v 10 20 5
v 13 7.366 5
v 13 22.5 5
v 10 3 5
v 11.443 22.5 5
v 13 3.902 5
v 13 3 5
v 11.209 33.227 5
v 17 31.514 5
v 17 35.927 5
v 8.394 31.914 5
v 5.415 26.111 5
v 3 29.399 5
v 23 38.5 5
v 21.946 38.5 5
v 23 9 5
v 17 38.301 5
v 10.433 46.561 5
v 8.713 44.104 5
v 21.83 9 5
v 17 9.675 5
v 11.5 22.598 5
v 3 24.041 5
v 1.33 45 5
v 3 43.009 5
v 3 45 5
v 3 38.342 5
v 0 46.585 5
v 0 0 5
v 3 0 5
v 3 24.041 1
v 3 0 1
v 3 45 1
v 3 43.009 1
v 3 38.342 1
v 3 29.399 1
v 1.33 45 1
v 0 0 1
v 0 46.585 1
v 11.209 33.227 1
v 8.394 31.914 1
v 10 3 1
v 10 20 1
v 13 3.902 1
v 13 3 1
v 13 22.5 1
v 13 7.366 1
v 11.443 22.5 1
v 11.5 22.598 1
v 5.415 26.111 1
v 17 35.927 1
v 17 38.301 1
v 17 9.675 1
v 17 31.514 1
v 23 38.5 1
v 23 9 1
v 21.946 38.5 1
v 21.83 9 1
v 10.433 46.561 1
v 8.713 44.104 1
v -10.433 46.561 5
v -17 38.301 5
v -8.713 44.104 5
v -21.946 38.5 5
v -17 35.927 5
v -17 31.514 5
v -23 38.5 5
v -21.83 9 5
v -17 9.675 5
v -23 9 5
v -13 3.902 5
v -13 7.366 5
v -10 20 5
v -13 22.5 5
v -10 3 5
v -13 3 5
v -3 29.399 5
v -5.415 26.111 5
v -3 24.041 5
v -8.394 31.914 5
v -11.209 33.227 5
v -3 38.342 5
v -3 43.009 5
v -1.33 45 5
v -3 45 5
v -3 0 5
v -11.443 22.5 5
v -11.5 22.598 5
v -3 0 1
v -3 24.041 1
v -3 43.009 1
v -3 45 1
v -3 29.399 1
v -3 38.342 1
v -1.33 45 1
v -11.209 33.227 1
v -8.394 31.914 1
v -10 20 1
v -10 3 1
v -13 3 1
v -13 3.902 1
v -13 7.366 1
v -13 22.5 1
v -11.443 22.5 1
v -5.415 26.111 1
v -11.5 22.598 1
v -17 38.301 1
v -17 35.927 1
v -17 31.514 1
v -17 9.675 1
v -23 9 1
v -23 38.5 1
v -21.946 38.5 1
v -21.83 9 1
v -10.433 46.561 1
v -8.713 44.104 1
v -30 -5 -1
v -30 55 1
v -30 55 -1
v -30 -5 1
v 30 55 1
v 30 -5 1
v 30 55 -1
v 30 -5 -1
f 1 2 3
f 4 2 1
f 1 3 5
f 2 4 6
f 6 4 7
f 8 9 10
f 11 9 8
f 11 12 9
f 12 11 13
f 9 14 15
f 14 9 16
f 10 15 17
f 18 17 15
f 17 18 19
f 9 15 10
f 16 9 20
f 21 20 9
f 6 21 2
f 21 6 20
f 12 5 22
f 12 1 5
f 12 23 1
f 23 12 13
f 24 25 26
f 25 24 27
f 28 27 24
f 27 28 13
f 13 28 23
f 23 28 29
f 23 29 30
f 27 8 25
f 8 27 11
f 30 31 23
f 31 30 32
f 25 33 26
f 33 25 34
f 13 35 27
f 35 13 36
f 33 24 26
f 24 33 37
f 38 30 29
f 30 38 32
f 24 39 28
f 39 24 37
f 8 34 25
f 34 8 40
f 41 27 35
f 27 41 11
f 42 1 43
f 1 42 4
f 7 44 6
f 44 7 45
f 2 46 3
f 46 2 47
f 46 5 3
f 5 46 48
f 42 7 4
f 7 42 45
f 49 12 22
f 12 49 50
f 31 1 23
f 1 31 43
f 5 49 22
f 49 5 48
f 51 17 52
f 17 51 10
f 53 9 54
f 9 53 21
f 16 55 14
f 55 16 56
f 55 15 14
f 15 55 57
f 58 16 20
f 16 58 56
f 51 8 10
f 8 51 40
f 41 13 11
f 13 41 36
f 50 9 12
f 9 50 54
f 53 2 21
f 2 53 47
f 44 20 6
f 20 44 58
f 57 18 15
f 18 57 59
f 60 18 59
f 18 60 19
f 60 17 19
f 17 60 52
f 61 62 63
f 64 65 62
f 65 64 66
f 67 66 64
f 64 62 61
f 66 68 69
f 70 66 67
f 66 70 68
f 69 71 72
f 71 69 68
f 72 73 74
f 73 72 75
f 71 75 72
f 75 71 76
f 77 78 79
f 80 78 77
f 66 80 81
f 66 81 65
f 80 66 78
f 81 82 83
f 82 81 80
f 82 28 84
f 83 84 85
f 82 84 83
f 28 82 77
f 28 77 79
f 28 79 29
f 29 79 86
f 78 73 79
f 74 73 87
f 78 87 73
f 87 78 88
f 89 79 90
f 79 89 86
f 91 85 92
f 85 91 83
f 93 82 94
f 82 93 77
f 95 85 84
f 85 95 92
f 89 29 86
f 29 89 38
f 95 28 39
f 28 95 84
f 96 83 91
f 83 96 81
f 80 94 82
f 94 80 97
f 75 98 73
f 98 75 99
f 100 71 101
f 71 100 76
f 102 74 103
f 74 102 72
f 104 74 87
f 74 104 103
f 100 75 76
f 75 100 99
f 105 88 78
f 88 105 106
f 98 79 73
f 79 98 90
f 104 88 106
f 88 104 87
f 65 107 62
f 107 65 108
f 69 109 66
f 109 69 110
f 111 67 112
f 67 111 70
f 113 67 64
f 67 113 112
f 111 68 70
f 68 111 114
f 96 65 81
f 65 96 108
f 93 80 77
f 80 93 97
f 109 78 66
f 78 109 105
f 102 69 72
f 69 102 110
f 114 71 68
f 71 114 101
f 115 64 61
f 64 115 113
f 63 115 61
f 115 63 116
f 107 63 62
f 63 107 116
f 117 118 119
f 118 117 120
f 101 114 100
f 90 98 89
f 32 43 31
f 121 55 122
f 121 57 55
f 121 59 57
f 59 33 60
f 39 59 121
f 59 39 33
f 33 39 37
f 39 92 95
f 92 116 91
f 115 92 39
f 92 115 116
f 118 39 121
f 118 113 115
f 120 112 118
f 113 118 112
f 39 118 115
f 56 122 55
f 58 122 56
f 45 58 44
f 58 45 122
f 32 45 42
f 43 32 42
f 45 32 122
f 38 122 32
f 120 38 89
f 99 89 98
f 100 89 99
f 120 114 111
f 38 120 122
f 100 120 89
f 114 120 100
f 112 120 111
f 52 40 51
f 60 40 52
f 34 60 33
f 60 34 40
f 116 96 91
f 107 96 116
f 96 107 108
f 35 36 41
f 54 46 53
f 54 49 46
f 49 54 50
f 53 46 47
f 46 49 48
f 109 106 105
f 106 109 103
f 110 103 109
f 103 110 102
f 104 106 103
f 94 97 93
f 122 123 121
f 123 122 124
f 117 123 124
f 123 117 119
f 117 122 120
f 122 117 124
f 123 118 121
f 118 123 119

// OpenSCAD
module arrow() {
    union() {
        cube([3,45,5]);
        translate([10,30,0]) rotate(40) cube([3,20,5]);
    }
}

module turn_line() {
    union() {
        translate([10,3,0])cube([3,19.5,5]);
        translate([10,20,0]) rotate(60) cube([3,10,5]);
    }
}

module black_lines() {
    union() {
        translate([17,9,0]) cube([6,29.5,5]);
        translate([0,28,0]) rotate(-65) cube([4,19,5]);
        translate([11.5,6.5,0]) rotate(-60) cube([3,11.5,5]);
        translate([21,35.5,0]) rotate(55) cube([3,15,5]);
    }
}

module half_shape() {
    difference() {
        union() {
            arrow();
            turn_line();
            black_lines();
        };
        translate([-5,-10,0]) cube([5,100,10]);
    }
}

half_shape();

mirror([10,0,0]) half_shape();


translate([0,25,0]) cube([60,60,2], center=true);
